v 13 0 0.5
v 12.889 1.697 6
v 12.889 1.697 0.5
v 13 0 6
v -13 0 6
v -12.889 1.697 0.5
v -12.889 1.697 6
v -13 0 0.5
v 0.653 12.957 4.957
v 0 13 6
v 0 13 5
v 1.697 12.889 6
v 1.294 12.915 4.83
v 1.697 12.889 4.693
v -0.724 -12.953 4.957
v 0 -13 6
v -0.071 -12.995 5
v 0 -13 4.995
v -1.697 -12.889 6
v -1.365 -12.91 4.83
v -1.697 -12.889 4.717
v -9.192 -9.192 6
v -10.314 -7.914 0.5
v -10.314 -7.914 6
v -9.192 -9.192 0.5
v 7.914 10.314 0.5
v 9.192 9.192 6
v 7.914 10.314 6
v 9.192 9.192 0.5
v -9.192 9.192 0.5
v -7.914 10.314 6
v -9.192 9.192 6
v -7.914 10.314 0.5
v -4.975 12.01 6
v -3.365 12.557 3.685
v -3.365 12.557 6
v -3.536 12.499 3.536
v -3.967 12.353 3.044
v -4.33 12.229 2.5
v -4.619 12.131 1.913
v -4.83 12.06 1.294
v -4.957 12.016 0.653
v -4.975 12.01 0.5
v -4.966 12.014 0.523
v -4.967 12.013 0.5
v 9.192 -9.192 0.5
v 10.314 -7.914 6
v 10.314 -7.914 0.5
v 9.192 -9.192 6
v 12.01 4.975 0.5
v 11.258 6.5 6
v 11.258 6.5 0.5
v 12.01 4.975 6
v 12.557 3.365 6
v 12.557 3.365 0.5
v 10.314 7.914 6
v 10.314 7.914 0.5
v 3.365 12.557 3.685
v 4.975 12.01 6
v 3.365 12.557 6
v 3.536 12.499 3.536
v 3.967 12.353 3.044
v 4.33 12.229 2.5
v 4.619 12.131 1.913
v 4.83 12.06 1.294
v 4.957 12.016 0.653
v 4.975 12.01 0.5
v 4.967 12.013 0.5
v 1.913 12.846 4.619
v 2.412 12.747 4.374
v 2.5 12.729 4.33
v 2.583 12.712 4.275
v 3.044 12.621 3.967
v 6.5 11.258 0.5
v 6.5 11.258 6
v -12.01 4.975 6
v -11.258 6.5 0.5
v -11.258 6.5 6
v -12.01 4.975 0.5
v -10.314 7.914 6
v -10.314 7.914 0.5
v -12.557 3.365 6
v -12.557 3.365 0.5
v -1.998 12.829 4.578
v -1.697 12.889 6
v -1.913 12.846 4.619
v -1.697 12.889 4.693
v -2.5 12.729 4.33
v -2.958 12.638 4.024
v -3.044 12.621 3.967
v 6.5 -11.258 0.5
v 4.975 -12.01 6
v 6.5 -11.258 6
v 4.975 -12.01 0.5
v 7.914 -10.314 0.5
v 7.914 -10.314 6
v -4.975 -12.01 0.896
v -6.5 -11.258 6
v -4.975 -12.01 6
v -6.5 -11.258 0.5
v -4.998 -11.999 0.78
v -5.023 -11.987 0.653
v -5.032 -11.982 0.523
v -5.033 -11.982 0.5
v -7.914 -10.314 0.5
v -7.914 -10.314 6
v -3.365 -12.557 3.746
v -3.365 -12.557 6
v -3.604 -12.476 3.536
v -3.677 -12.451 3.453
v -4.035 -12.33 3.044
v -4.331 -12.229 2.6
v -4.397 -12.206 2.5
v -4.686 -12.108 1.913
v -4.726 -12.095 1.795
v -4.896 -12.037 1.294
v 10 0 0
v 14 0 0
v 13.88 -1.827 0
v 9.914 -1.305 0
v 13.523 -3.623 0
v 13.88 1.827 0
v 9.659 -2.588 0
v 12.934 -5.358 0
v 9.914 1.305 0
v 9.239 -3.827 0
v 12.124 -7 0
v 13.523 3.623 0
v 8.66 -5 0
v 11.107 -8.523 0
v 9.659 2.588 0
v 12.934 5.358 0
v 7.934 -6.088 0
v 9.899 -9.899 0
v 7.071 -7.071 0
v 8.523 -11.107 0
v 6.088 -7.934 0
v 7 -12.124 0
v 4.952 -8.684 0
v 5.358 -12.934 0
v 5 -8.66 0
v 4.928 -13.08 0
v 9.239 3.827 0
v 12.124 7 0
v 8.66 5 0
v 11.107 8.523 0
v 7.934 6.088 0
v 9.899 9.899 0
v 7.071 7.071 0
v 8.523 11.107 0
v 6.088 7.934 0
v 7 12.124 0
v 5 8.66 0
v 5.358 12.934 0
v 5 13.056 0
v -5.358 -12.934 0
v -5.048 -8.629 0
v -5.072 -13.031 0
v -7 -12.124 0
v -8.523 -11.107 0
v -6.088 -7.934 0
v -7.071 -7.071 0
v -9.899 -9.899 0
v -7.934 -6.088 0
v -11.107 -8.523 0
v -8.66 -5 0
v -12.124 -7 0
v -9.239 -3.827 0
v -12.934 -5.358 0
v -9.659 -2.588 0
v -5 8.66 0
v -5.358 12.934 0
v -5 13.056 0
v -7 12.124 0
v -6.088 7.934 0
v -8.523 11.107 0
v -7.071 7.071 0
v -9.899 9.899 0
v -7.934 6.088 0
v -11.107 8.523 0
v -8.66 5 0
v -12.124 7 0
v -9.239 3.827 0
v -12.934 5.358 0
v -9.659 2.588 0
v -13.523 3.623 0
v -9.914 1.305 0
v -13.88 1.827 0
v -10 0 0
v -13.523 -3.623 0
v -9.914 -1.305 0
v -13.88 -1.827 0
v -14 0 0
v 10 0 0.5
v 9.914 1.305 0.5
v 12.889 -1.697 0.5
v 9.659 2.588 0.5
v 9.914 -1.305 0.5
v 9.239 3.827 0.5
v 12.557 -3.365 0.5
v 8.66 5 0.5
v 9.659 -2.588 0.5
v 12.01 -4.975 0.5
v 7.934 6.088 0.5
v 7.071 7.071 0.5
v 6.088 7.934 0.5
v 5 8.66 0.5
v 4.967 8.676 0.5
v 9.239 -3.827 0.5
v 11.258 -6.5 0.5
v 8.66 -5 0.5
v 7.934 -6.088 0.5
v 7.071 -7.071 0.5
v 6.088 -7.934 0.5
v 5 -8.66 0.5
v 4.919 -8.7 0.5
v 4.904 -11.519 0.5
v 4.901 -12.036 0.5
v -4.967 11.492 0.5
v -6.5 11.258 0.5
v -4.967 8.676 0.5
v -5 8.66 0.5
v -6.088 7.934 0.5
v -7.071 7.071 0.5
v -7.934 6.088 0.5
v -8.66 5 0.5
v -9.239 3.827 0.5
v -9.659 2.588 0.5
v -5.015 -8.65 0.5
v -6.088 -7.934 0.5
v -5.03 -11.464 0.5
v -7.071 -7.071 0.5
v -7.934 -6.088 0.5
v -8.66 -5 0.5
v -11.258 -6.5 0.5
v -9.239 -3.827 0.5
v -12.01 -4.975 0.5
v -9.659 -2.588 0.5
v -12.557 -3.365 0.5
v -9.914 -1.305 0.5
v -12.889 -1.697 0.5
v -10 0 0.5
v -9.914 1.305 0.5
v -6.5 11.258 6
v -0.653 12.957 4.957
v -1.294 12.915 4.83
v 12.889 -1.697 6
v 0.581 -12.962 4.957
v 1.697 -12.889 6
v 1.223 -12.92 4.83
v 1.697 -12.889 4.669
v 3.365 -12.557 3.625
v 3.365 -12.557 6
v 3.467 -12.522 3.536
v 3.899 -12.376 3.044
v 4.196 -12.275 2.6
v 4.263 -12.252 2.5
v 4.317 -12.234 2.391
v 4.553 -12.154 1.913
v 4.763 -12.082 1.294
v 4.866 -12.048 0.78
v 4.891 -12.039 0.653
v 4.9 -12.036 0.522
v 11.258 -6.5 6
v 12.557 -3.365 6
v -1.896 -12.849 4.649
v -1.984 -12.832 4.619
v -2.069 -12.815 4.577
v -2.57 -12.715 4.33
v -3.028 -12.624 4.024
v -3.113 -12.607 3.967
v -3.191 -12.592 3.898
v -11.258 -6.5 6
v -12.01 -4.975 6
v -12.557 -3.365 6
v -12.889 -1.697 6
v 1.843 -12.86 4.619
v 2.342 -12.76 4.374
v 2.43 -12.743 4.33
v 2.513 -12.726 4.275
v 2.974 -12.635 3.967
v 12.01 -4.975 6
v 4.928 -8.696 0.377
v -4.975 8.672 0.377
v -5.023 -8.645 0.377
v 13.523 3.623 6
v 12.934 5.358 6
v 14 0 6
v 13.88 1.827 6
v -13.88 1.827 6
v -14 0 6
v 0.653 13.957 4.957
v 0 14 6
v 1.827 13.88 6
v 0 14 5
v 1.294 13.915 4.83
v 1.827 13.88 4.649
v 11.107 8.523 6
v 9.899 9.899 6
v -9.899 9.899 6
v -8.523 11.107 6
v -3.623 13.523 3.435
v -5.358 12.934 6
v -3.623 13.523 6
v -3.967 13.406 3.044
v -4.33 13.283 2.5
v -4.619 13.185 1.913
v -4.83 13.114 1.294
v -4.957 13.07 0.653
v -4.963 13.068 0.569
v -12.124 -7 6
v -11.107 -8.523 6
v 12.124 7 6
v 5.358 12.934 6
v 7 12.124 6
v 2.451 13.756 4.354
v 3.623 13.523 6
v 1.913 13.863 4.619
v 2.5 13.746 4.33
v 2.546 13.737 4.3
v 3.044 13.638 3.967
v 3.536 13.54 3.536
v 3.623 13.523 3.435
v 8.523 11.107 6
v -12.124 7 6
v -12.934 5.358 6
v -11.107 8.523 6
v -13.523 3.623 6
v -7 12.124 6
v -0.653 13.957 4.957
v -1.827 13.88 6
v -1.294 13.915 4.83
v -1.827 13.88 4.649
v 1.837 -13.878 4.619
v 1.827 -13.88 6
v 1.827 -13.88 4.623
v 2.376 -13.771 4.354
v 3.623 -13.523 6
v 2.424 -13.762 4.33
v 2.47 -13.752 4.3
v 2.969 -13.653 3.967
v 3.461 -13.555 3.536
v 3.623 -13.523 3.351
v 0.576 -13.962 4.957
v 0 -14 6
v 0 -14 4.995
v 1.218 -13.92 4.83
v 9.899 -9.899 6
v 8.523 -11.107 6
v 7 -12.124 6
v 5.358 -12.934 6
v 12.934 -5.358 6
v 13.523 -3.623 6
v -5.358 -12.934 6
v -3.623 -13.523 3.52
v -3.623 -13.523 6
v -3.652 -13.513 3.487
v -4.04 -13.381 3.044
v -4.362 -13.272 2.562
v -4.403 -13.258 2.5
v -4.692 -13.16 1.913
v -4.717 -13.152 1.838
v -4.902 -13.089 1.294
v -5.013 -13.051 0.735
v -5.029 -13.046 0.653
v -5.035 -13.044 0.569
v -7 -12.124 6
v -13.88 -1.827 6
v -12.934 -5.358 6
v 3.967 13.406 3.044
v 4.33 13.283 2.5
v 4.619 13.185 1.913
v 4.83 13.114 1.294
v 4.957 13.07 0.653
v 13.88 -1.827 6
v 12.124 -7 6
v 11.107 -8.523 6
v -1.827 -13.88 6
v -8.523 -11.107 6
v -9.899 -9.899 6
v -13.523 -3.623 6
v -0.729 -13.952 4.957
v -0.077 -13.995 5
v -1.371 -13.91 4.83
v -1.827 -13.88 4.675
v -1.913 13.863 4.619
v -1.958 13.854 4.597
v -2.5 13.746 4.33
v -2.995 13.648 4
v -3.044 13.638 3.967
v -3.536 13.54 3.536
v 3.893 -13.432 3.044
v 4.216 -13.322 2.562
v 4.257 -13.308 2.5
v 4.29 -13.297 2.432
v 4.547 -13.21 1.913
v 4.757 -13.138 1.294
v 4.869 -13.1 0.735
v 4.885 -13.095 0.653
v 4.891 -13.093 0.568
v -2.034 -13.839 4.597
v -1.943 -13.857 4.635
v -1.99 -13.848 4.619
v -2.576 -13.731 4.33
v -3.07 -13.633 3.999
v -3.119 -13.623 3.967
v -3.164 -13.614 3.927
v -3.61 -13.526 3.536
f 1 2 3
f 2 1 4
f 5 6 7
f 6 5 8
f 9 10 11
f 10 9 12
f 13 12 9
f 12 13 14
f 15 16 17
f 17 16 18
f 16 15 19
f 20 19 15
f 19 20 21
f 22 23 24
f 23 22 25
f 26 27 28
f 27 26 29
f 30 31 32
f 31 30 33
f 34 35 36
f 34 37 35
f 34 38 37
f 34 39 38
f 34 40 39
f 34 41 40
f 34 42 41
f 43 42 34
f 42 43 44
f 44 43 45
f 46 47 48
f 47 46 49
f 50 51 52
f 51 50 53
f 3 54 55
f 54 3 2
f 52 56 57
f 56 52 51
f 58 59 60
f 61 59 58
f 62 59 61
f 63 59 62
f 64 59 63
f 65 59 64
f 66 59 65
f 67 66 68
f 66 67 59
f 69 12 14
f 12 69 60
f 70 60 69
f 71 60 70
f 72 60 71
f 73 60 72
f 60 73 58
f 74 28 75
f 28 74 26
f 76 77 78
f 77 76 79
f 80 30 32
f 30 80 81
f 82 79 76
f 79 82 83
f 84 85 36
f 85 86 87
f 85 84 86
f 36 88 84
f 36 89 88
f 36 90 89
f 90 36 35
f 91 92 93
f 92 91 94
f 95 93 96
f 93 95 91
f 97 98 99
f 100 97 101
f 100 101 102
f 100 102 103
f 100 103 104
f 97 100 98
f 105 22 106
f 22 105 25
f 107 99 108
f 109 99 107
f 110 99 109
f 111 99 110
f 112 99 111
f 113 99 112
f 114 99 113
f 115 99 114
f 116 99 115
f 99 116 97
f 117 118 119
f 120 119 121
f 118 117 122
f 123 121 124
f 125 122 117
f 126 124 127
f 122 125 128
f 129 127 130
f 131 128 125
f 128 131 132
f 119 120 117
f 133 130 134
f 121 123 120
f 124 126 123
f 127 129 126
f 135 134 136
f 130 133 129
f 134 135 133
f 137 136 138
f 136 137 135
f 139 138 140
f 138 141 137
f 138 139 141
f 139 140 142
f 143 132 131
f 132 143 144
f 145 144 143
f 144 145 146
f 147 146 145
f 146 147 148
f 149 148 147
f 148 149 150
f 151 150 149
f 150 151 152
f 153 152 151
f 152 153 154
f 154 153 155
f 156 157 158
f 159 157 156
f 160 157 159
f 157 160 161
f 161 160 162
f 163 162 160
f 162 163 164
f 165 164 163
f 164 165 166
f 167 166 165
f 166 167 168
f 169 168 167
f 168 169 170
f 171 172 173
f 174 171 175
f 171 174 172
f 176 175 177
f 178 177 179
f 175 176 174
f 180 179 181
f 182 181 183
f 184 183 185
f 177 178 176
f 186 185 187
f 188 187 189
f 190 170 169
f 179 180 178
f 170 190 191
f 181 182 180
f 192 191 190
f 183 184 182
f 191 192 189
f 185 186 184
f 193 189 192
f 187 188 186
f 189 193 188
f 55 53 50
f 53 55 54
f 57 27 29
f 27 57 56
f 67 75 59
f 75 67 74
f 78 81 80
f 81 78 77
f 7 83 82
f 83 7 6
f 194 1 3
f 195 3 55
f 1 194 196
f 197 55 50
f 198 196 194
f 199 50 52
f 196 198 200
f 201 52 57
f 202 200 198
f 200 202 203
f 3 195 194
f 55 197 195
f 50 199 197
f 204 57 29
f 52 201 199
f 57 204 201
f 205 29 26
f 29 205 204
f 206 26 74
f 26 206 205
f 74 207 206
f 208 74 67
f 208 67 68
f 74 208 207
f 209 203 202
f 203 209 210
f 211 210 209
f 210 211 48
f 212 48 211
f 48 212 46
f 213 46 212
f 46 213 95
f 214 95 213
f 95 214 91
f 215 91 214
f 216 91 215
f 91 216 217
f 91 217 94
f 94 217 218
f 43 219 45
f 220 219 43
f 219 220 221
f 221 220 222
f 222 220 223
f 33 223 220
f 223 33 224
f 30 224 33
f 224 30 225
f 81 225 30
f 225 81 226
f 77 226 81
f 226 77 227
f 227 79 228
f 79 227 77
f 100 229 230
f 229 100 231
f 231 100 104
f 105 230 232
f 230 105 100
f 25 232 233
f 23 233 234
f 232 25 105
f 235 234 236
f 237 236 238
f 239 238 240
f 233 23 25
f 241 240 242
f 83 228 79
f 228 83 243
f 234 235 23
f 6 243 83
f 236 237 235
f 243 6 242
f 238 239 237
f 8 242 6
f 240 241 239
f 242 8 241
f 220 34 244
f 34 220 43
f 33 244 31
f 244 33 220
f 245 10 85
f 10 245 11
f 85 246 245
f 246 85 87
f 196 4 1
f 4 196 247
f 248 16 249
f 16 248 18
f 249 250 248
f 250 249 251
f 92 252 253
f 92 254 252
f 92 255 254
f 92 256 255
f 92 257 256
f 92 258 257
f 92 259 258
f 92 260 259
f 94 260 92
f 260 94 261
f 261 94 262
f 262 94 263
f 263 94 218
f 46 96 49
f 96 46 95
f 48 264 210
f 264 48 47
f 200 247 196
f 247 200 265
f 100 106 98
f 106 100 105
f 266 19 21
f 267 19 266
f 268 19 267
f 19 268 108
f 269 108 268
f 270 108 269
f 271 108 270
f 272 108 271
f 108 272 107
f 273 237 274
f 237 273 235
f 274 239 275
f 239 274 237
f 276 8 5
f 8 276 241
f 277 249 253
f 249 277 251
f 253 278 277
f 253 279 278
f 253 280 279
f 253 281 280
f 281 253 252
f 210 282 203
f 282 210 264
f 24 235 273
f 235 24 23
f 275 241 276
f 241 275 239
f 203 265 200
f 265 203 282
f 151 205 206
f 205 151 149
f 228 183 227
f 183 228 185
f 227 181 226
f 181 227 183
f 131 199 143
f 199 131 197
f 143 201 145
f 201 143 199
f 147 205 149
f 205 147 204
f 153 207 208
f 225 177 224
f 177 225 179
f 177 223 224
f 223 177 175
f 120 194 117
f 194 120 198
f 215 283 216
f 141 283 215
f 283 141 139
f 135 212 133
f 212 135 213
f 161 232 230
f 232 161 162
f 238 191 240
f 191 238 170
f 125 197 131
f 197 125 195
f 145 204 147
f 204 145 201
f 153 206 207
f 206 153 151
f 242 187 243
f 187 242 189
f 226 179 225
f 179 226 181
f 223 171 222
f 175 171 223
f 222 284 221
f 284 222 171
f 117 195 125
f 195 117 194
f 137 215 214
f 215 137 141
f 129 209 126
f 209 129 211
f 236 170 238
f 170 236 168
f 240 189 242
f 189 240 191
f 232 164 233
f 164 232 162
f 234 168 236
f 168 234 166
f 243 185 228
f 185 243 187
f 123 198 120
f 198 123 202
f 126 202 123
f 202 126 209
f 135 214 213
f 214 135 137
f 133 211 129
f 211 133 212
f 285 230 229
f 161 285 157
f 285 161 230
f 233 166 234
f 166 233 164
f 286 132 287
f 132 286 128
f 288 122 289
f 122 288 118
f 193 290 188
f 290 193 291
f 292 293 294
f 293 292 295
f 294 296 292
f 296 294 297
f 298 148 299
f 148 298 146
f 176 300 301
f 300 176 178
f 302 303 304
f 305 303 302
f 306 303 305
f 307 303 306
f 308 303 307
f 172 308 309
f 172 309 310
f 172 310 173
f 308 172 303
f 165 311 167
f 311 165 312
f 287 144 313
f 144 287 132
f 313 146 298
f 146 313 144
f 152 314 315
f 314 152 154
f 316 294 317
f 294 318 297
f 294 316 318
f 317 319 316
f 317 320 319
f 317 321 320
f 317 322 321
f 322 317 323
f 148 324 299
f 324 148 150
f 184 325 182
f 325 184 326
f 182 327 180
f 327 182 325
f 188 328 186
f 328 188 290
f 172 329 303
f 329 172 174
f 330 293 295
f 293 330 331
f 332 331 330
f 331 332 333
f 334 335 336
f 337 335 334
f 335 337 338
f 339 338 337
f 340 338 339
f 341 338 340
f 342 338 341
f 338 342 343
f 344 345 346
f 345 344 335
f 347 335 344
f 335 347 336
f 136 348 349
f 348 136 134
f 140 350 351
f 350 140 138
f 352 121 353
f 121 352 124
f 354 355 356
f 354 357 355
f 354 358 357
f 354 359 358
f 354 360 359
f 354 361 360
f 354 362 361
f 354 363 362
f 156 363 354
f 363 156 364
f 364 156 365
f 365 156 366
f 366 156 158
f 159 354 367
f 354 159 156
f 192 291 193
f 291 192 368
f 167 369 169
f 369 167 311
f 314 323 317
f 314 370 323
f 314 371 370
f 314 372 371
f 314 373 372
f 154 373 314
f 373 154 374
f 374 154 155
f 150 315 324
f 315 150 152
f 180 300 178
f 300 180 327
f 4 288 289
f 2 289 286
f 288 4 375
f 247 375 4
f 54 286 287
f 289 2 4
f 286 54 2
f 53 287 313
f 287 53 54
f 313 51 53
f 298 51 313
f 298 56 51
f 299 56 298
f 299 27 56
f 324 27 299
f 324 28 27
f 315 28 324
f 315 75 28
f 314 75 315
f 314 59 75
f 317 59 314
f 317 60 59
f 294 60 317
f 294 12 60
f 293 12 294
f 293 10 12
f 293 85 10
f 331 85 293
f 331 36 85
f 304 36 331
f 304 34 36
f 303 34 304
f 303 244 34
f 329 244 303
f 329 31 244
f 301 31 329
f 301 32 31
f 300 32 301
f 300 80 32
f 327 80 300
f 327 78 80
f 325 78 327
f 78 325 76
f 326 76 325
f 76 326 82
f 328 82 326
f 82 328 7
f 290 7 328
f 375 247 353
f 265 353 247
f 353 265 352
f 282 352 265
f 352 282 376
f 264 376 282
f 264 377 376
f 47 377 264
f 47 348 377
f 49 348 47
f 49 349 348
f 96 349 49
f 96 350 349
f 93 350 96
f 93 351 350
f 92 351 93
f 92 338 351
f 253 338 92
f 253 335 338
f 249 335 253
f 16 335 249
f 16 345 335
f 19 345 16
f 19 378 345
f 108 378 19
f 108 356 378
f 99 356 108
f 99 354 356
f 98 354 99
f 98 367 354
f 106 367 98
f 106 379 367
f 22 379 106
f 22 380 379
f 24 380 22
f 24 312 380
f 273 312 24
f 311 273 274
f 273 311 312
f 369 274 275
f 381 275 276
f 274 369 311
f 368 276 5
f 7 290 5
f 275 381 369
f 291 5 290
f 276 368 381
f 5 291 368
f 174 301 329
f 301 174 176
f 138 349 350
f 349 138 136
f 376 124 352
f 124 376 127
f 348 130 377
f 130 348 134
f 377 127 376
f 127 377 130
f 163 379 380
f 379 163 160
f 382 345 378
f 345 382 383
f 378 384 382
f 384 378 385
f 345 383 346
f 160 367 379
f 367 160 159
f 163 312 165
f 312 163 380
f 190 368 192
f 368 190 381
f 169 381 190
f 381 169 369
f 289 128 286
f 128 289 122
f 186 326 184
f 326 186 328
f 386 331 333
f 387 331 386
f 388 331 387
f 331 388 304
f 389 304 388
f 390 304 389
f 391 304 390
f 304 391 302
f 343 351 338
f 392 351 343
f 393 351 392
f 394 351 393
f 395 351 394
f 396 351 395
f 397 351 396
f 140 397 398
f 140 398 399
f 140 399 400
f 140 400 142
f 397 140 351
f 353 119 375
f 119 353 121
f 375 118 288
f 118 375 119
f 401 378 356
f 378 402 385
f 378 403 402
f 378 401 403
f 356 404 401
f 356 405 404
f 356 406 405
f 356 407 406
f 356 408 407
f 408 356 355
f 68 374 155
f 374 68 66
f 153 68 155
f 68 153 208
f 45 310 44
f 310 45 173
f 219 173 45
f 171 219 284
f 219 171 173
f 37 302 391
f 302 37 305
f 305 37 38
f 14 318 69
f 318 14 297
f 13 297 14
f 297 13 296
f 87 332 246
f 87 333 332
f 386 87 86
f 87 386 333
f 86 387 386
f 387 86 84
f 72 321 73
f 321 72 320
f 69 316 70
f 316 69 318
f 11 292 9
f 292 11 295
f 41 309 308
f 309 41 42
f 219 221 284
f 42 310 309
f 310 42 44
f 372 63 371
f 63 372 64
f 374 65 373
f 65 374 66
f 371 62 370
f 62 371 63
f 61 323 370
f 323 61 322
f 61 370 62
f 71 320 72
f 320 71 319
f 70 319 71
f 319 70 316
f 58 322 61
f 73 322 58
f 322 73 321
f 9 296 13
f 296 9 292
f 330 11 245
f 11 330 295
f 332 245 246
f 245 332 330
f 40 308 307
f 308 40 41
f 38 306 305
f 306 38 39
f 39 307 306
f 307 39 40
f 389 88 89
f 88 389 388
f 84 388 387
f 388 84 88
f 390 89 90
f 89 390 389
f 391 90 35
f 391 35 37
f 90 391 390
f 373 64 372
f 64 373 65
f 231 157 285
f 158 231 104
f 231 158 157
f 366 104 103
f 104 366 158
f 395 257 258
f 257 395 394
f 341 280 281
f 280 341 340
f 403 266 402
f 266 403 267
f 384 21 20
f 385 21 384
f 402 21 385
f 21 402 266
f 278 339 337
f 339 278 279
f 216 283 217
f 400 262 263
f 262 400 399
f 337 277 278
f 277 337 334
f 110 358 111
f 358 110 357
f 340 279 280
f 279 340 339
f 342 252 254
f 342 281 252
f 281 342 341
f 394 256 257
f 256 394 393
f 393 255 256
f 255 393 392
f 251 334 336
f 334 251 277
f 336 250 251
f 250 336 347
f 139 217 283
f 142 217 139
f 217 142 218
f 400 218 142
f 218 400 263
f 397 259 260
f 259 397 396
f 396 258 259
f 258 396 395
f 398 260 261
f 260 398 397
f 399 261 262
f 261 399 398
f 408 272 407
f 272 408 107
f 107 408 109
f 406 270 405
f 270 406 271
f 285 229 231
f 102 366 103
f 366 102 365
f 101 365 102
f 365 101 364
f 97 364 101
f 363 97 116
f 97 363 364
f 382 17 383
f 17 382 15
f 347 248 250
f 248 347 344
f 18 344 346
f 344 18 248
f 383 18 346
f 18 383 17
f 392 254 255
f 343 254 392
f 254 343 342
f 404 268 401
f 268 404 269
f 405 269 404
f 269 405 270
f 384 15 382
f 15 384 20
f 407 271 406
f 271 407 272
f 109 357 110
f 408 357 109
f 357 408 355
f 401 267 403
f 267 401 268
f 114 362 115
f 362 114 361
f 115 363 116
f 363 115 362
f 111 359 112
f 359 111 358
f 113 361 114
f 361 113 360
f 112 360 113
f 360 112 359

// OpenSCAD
// file: ../build_environments.scad
// build_environments.scad: modules to build level sections
//

module pool(diameter=10.0, wall_height=2.0, step_width=3.0, connections=[])
{
    difference() {
        union() {
        difference() {
            cylinder(h=0.5,r1=diameter+step_width,r2=diameter+step_width,$fn=48);
            translate([0,0,-0.1])
                cylinder(h=0.7,r1=diameter,r2=diameter,$fn=48);
        }
        difference() {
            cylinder(h=wall_height,r1=diameter+step_width+1.0,r2=diameter+step_width+1.0,$fn=48);
            translate([0,0,-0.1])
                cylinder(h=wall_height+0.2,r1=diameter+step_width,r2=diameter+step_width,$fn=48);
        }
        }
    
        for (c = connections)
        {
            rotate([0,90,0]) {
                angle = atan2(c[1],c[0]);
                rotate([-angle,0,0]) {
                    cylinder(h=diameter+5.0,r1=c[2],r2=c[2],$fn=48);
                }
            }
        }
    }
}

module straight(length=10.0, width=2.0, dy1=0.0, dy2=0.0, dz=0.0)
{
    dims = [0, 0, 0, 0, 0, (dz/length)];
    matrix = [
        [ 1, dims[0], dims[1], 0 ],
        [ dims[2], 1, dims[4], 0 ],
        [ dims[5], dims[3], 1, 0 ],
        [ 0, 0, 0, 1 ]
    ];
    multmatrix(matrix)
    difference() {
        translate([dy1,0,0])
        union() {
            rotate([0,90,0]) {
                difference() {
                    cylinder(h=(length-dy1-dy2),r1=width+1.0,r2=width+1.0,$fn=24);
                    translate([0,0,-0.1])
                        cylinder(h=(length-dy1-dy2+0.2),r1=width,r2=width,$fn=24);
                }
                difference() {
                    cylinder(h=1.0,r1=width+2.0,r2=width+2.0,$fn=24);
                    translate([0,0,-0.1])
                        cylinder(h=1.2,r1=width,r2=width,$fn=24);
                }
                translate([0,0,(length-dy1-dy2)-1.0]) {
                    difference() {
                        cylinder(h=1.0,r1=width+2.0,r2=width+2.0,$fn=24);
                        translate([0,0,-0.1])
                            cylinder(h=1.2,r1=width,r2=width,$fn=24);
                    }
                }
            }
        }
        translate([0,0,-(2*width+4.0)/2])
            cube([3*length,3*length,2*width+4.0],center=true);
    }
}

module curve(p0=[0,0], center=[0,0], dir=1, angle=0.0, width=2.0)
{
    radius = sqrt((p0[0]-center[0])*(p0[0]-center[0]) + (p0[1]-center[1])*(p0[1]-center[1]));
    if (dir == 0) {
        difference() {
            rotate([0,0,-90])
            difference() {
                rotate_extrude(angle = angle, convexity = 10, $fn=32)
                    translate([radius, 0, 0])
                        circle(r = width+1.0,$fn=24);
                rotate([0,0,-1.0])
                    rotate_extrude(angle = angle+2.0, convexity = 10, $fn=32)
                        translate([radius, 0, 0])
                            circle(r = width,$fn=24);
            }
            translate([0,0,-(2*width+4.0)/2])
                cube([5*radius,5*radius,2*width+4.0],center=true);
        }
    }
    else {
        difference() {
            rotate([0,0,90])
            difference() {
                rotate_extrude(angle = -angle, convexity = 10, $fn=32)
                    translate([radius, 0, 0])
                        circle(r = width+1.0,$fn=24);
                rotate([0,0,1.0])
                    rotate_extrude(angle = -angle-2.0, convexity = 10, $fn=32)
                        translate([radius, 0, 0])
                            circle(r = width,$fn=24);
            }
            translate([0,0,-(2*width+4.0)/2])
                cube([5*radius,5*radius,2*width+4.0],center=true);
        }
    }

}

// test pool
//pool(diameter=12.0000, wall_height=3.0000, step_width=3.0000, connections=[[0.0000,-26.0000,2.0000], [23.6074,0.0000,2.0000]]);

// test straight, slope
//straight(length=26.0000, width=2.0000, dy1=11.8322, dy2=6.7082, dz=0.0000);
//straight(length=29.1549, width=12.0000, dy1=0.0000, dy2=0.0000, dz=-15.0000);

// test curve
//curve(p0=[23.6074, 0.0000], center=[23.6074, 5.0000], dir=0, angle=60.1011, width=2.0000);
//curve(p0=[33.6426, 12.4219], center=[37.9771, 9.9295], dir=1, angle=120.4627, width=2.0000);
// main file
use <../build_environments.scad>;
pool(diameter=10.0000, wall_height=6.0000, step_width=3.0000, connections=[[0.0000,52.0000,5.0000], [-0.1160,-21.0997,5.0000]]);
